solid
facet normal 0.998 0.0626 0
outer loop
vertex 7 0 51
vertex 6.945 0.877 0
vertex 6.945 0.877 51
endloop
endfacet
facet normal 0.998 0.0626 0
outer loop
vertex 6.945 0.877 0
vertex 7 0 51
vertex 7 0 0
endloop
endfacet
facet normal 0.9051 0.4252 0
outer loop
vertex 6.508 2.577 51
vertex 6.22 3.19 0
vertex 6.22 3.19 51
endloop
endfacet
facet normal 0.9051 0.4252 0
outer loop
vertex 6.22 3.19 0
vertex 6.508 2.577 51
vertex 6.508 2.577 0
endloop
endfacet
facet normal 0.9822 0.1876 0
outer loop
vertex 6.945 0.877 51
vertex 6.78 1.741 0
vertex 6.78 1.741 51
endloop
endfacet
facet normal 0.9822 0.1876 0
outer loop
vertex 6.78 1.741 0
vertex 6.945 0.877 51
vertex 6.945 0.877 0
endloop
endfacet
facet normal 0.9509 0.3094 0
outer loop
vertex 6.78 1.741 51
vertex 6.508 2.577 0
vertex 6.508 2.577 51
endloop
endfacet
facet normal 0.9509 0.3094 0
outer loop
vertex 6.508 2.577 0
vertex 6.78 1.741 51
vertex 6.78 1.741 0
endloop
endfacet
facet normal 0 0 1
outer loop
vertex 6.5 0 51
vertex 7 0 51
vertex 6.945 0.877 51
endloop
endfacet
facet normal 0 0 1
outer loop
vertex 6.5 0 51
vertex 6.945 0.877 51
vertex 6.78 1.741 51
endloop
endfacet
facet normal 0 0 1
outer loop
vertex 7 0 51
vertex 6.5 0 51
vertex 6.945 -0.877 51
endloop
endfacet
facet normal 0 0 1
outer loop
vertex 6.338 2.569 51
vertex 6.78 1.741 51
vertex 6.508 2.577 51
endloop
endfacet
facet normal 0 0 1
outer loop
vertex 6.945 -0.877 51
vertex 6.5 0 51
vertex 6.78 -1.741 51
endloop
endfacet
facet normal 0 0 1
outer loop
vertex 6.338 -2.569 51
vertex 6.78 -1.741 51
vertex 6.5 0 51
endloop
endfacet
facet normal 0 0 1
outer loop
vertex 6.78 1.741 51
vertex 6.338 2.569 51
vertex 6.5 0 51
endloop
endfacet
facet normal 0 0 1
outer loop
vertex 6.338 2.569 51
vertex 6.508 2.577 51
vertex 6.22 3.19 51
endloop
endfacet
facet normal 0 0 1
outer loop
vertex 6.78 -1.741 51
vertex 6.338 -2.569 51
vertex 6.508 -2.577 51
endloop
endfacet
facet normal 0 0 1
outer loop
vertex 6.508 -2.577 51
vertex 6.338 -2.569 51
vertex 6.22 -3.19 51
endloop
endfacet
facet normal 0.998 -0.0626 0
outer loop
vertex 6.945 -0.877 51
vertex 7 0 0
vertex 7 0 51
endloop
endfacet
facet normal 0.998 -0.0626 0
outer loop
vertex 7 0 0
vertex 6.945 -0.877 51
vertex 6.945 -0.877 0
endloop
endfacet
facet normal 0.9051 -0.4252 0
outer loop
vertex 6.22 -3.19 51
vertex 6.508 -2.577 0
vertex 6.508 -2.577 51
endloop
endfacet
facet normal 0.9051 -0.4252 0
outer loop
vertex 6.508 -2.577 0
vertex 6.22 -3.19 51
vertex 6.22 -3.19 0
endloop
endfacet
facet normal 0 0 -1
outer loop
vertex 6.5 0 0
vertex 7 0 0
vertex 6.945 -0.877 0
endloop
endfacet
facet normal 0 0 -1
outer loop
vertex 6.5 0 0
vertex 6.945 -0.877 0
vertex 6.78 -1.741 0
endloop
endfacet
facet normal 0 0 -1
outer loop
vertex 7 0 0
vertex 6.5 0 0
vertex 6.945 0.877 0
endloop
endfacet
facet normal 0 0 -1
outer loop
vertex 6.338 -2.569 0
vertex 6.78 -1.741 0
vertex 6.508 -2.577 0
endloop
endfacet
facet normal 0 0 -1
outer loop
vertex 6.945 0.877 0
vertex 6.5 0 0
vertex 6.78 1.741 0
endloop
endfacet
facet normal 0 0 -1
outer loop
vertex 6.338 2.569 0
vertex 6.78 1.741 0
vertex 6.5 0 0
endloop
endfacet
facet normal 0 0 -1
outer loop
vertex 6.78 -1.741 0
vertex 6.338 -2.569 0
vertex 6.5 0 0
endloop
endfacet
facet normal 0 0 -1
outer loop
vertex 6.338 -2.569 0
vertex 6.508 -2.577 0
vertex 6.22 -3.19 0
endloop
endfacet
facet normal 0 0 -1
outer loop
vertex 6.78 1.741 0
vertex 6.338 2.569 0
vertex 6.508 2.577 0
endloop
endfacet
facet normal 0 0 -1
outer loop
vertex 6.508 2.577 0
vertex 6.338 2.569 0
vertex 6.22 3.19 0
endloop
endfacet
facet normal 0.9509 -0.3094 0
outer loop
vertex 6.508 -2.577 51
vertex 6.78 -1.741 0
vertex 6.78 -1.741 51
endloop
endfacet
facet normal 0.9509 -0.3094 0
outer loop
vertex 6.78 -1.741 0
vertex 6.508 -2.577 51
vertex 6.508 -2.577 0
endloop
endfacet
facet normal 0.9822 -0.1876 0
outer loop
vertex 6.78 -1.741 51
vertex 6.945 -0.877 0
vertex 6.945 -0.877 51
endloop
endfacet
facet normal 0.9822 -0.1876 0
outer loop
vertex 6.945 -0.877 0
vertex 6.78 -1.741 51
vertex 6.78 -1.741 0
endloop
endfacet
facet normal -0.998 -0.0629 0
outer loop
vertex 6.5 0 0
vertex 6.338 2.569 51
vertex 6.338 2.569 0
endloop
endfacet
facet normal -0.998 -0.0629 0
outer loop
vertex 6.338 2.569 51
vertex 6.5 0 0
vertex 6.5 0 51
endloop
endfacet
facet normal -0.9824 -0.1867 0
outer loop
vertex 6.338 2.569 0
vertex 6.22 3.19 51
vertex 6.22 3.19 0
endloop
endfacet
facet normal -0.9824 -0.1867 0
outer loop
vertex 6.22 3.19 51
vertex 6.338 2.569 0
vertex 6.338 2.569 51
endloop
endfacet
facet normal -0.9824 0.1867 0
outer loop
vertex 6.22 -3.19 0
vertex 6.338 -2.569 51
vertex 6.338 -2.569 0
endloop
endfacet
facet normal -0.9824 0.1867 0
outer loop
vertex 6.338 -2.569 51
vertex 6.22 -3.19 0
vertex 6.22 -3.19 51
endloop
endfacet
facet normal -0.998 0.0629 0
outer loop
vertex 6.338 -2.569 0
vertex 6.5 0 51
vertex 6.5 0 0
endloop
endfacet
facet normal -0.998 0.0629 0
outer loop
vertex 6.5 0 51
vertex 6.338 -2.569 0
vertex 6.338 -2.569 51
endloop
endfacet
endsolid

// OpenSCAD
$fn = 50;


difference() {
	union() {
		cylinder(h = 51, r = 7.0000000000);
		translate(v = [-17.0000000000, 0, 0]) {
			cylinder(h = 51, r = 7.0000000000);
		}
	}
	union() {
		cylinder(h = 51, r = 3.2500000000);
		cylinder(h = 51, r = 1.8000000000);
		cylinder(h = 51, r = 1.8000000000);
		cylinder(h = 51, r = 1.8000000000);
		translate(v = [-21.5000000000, 0, 0]) {
			hull() {
				translate(v = [-3.7500000000, 0.0000000000, 0]) {
					cylinder(h = 51, r = 10.5000000000);
				}
				translate(v = [3.7500000000, 0.0000000000, 0]) {
					cylinder(h = 51, r = 10.5000000000);
				}
				translate(v = [-3.7500000000, -0.0000000000, 0]) {
					cylinder(h = 51, r = 10.5000000000);
				}
				translate(v = [3.7500000000, -0.0000000000, 0]) {
					cylinder(h = 51, r = 10.5000000000);
				}
			}
		}
		translate(v = [-14.0000000000, 0, 0.0000000000]) {
			cylinder(h = 51, r = 20.5000000000);
		}
	}
}
